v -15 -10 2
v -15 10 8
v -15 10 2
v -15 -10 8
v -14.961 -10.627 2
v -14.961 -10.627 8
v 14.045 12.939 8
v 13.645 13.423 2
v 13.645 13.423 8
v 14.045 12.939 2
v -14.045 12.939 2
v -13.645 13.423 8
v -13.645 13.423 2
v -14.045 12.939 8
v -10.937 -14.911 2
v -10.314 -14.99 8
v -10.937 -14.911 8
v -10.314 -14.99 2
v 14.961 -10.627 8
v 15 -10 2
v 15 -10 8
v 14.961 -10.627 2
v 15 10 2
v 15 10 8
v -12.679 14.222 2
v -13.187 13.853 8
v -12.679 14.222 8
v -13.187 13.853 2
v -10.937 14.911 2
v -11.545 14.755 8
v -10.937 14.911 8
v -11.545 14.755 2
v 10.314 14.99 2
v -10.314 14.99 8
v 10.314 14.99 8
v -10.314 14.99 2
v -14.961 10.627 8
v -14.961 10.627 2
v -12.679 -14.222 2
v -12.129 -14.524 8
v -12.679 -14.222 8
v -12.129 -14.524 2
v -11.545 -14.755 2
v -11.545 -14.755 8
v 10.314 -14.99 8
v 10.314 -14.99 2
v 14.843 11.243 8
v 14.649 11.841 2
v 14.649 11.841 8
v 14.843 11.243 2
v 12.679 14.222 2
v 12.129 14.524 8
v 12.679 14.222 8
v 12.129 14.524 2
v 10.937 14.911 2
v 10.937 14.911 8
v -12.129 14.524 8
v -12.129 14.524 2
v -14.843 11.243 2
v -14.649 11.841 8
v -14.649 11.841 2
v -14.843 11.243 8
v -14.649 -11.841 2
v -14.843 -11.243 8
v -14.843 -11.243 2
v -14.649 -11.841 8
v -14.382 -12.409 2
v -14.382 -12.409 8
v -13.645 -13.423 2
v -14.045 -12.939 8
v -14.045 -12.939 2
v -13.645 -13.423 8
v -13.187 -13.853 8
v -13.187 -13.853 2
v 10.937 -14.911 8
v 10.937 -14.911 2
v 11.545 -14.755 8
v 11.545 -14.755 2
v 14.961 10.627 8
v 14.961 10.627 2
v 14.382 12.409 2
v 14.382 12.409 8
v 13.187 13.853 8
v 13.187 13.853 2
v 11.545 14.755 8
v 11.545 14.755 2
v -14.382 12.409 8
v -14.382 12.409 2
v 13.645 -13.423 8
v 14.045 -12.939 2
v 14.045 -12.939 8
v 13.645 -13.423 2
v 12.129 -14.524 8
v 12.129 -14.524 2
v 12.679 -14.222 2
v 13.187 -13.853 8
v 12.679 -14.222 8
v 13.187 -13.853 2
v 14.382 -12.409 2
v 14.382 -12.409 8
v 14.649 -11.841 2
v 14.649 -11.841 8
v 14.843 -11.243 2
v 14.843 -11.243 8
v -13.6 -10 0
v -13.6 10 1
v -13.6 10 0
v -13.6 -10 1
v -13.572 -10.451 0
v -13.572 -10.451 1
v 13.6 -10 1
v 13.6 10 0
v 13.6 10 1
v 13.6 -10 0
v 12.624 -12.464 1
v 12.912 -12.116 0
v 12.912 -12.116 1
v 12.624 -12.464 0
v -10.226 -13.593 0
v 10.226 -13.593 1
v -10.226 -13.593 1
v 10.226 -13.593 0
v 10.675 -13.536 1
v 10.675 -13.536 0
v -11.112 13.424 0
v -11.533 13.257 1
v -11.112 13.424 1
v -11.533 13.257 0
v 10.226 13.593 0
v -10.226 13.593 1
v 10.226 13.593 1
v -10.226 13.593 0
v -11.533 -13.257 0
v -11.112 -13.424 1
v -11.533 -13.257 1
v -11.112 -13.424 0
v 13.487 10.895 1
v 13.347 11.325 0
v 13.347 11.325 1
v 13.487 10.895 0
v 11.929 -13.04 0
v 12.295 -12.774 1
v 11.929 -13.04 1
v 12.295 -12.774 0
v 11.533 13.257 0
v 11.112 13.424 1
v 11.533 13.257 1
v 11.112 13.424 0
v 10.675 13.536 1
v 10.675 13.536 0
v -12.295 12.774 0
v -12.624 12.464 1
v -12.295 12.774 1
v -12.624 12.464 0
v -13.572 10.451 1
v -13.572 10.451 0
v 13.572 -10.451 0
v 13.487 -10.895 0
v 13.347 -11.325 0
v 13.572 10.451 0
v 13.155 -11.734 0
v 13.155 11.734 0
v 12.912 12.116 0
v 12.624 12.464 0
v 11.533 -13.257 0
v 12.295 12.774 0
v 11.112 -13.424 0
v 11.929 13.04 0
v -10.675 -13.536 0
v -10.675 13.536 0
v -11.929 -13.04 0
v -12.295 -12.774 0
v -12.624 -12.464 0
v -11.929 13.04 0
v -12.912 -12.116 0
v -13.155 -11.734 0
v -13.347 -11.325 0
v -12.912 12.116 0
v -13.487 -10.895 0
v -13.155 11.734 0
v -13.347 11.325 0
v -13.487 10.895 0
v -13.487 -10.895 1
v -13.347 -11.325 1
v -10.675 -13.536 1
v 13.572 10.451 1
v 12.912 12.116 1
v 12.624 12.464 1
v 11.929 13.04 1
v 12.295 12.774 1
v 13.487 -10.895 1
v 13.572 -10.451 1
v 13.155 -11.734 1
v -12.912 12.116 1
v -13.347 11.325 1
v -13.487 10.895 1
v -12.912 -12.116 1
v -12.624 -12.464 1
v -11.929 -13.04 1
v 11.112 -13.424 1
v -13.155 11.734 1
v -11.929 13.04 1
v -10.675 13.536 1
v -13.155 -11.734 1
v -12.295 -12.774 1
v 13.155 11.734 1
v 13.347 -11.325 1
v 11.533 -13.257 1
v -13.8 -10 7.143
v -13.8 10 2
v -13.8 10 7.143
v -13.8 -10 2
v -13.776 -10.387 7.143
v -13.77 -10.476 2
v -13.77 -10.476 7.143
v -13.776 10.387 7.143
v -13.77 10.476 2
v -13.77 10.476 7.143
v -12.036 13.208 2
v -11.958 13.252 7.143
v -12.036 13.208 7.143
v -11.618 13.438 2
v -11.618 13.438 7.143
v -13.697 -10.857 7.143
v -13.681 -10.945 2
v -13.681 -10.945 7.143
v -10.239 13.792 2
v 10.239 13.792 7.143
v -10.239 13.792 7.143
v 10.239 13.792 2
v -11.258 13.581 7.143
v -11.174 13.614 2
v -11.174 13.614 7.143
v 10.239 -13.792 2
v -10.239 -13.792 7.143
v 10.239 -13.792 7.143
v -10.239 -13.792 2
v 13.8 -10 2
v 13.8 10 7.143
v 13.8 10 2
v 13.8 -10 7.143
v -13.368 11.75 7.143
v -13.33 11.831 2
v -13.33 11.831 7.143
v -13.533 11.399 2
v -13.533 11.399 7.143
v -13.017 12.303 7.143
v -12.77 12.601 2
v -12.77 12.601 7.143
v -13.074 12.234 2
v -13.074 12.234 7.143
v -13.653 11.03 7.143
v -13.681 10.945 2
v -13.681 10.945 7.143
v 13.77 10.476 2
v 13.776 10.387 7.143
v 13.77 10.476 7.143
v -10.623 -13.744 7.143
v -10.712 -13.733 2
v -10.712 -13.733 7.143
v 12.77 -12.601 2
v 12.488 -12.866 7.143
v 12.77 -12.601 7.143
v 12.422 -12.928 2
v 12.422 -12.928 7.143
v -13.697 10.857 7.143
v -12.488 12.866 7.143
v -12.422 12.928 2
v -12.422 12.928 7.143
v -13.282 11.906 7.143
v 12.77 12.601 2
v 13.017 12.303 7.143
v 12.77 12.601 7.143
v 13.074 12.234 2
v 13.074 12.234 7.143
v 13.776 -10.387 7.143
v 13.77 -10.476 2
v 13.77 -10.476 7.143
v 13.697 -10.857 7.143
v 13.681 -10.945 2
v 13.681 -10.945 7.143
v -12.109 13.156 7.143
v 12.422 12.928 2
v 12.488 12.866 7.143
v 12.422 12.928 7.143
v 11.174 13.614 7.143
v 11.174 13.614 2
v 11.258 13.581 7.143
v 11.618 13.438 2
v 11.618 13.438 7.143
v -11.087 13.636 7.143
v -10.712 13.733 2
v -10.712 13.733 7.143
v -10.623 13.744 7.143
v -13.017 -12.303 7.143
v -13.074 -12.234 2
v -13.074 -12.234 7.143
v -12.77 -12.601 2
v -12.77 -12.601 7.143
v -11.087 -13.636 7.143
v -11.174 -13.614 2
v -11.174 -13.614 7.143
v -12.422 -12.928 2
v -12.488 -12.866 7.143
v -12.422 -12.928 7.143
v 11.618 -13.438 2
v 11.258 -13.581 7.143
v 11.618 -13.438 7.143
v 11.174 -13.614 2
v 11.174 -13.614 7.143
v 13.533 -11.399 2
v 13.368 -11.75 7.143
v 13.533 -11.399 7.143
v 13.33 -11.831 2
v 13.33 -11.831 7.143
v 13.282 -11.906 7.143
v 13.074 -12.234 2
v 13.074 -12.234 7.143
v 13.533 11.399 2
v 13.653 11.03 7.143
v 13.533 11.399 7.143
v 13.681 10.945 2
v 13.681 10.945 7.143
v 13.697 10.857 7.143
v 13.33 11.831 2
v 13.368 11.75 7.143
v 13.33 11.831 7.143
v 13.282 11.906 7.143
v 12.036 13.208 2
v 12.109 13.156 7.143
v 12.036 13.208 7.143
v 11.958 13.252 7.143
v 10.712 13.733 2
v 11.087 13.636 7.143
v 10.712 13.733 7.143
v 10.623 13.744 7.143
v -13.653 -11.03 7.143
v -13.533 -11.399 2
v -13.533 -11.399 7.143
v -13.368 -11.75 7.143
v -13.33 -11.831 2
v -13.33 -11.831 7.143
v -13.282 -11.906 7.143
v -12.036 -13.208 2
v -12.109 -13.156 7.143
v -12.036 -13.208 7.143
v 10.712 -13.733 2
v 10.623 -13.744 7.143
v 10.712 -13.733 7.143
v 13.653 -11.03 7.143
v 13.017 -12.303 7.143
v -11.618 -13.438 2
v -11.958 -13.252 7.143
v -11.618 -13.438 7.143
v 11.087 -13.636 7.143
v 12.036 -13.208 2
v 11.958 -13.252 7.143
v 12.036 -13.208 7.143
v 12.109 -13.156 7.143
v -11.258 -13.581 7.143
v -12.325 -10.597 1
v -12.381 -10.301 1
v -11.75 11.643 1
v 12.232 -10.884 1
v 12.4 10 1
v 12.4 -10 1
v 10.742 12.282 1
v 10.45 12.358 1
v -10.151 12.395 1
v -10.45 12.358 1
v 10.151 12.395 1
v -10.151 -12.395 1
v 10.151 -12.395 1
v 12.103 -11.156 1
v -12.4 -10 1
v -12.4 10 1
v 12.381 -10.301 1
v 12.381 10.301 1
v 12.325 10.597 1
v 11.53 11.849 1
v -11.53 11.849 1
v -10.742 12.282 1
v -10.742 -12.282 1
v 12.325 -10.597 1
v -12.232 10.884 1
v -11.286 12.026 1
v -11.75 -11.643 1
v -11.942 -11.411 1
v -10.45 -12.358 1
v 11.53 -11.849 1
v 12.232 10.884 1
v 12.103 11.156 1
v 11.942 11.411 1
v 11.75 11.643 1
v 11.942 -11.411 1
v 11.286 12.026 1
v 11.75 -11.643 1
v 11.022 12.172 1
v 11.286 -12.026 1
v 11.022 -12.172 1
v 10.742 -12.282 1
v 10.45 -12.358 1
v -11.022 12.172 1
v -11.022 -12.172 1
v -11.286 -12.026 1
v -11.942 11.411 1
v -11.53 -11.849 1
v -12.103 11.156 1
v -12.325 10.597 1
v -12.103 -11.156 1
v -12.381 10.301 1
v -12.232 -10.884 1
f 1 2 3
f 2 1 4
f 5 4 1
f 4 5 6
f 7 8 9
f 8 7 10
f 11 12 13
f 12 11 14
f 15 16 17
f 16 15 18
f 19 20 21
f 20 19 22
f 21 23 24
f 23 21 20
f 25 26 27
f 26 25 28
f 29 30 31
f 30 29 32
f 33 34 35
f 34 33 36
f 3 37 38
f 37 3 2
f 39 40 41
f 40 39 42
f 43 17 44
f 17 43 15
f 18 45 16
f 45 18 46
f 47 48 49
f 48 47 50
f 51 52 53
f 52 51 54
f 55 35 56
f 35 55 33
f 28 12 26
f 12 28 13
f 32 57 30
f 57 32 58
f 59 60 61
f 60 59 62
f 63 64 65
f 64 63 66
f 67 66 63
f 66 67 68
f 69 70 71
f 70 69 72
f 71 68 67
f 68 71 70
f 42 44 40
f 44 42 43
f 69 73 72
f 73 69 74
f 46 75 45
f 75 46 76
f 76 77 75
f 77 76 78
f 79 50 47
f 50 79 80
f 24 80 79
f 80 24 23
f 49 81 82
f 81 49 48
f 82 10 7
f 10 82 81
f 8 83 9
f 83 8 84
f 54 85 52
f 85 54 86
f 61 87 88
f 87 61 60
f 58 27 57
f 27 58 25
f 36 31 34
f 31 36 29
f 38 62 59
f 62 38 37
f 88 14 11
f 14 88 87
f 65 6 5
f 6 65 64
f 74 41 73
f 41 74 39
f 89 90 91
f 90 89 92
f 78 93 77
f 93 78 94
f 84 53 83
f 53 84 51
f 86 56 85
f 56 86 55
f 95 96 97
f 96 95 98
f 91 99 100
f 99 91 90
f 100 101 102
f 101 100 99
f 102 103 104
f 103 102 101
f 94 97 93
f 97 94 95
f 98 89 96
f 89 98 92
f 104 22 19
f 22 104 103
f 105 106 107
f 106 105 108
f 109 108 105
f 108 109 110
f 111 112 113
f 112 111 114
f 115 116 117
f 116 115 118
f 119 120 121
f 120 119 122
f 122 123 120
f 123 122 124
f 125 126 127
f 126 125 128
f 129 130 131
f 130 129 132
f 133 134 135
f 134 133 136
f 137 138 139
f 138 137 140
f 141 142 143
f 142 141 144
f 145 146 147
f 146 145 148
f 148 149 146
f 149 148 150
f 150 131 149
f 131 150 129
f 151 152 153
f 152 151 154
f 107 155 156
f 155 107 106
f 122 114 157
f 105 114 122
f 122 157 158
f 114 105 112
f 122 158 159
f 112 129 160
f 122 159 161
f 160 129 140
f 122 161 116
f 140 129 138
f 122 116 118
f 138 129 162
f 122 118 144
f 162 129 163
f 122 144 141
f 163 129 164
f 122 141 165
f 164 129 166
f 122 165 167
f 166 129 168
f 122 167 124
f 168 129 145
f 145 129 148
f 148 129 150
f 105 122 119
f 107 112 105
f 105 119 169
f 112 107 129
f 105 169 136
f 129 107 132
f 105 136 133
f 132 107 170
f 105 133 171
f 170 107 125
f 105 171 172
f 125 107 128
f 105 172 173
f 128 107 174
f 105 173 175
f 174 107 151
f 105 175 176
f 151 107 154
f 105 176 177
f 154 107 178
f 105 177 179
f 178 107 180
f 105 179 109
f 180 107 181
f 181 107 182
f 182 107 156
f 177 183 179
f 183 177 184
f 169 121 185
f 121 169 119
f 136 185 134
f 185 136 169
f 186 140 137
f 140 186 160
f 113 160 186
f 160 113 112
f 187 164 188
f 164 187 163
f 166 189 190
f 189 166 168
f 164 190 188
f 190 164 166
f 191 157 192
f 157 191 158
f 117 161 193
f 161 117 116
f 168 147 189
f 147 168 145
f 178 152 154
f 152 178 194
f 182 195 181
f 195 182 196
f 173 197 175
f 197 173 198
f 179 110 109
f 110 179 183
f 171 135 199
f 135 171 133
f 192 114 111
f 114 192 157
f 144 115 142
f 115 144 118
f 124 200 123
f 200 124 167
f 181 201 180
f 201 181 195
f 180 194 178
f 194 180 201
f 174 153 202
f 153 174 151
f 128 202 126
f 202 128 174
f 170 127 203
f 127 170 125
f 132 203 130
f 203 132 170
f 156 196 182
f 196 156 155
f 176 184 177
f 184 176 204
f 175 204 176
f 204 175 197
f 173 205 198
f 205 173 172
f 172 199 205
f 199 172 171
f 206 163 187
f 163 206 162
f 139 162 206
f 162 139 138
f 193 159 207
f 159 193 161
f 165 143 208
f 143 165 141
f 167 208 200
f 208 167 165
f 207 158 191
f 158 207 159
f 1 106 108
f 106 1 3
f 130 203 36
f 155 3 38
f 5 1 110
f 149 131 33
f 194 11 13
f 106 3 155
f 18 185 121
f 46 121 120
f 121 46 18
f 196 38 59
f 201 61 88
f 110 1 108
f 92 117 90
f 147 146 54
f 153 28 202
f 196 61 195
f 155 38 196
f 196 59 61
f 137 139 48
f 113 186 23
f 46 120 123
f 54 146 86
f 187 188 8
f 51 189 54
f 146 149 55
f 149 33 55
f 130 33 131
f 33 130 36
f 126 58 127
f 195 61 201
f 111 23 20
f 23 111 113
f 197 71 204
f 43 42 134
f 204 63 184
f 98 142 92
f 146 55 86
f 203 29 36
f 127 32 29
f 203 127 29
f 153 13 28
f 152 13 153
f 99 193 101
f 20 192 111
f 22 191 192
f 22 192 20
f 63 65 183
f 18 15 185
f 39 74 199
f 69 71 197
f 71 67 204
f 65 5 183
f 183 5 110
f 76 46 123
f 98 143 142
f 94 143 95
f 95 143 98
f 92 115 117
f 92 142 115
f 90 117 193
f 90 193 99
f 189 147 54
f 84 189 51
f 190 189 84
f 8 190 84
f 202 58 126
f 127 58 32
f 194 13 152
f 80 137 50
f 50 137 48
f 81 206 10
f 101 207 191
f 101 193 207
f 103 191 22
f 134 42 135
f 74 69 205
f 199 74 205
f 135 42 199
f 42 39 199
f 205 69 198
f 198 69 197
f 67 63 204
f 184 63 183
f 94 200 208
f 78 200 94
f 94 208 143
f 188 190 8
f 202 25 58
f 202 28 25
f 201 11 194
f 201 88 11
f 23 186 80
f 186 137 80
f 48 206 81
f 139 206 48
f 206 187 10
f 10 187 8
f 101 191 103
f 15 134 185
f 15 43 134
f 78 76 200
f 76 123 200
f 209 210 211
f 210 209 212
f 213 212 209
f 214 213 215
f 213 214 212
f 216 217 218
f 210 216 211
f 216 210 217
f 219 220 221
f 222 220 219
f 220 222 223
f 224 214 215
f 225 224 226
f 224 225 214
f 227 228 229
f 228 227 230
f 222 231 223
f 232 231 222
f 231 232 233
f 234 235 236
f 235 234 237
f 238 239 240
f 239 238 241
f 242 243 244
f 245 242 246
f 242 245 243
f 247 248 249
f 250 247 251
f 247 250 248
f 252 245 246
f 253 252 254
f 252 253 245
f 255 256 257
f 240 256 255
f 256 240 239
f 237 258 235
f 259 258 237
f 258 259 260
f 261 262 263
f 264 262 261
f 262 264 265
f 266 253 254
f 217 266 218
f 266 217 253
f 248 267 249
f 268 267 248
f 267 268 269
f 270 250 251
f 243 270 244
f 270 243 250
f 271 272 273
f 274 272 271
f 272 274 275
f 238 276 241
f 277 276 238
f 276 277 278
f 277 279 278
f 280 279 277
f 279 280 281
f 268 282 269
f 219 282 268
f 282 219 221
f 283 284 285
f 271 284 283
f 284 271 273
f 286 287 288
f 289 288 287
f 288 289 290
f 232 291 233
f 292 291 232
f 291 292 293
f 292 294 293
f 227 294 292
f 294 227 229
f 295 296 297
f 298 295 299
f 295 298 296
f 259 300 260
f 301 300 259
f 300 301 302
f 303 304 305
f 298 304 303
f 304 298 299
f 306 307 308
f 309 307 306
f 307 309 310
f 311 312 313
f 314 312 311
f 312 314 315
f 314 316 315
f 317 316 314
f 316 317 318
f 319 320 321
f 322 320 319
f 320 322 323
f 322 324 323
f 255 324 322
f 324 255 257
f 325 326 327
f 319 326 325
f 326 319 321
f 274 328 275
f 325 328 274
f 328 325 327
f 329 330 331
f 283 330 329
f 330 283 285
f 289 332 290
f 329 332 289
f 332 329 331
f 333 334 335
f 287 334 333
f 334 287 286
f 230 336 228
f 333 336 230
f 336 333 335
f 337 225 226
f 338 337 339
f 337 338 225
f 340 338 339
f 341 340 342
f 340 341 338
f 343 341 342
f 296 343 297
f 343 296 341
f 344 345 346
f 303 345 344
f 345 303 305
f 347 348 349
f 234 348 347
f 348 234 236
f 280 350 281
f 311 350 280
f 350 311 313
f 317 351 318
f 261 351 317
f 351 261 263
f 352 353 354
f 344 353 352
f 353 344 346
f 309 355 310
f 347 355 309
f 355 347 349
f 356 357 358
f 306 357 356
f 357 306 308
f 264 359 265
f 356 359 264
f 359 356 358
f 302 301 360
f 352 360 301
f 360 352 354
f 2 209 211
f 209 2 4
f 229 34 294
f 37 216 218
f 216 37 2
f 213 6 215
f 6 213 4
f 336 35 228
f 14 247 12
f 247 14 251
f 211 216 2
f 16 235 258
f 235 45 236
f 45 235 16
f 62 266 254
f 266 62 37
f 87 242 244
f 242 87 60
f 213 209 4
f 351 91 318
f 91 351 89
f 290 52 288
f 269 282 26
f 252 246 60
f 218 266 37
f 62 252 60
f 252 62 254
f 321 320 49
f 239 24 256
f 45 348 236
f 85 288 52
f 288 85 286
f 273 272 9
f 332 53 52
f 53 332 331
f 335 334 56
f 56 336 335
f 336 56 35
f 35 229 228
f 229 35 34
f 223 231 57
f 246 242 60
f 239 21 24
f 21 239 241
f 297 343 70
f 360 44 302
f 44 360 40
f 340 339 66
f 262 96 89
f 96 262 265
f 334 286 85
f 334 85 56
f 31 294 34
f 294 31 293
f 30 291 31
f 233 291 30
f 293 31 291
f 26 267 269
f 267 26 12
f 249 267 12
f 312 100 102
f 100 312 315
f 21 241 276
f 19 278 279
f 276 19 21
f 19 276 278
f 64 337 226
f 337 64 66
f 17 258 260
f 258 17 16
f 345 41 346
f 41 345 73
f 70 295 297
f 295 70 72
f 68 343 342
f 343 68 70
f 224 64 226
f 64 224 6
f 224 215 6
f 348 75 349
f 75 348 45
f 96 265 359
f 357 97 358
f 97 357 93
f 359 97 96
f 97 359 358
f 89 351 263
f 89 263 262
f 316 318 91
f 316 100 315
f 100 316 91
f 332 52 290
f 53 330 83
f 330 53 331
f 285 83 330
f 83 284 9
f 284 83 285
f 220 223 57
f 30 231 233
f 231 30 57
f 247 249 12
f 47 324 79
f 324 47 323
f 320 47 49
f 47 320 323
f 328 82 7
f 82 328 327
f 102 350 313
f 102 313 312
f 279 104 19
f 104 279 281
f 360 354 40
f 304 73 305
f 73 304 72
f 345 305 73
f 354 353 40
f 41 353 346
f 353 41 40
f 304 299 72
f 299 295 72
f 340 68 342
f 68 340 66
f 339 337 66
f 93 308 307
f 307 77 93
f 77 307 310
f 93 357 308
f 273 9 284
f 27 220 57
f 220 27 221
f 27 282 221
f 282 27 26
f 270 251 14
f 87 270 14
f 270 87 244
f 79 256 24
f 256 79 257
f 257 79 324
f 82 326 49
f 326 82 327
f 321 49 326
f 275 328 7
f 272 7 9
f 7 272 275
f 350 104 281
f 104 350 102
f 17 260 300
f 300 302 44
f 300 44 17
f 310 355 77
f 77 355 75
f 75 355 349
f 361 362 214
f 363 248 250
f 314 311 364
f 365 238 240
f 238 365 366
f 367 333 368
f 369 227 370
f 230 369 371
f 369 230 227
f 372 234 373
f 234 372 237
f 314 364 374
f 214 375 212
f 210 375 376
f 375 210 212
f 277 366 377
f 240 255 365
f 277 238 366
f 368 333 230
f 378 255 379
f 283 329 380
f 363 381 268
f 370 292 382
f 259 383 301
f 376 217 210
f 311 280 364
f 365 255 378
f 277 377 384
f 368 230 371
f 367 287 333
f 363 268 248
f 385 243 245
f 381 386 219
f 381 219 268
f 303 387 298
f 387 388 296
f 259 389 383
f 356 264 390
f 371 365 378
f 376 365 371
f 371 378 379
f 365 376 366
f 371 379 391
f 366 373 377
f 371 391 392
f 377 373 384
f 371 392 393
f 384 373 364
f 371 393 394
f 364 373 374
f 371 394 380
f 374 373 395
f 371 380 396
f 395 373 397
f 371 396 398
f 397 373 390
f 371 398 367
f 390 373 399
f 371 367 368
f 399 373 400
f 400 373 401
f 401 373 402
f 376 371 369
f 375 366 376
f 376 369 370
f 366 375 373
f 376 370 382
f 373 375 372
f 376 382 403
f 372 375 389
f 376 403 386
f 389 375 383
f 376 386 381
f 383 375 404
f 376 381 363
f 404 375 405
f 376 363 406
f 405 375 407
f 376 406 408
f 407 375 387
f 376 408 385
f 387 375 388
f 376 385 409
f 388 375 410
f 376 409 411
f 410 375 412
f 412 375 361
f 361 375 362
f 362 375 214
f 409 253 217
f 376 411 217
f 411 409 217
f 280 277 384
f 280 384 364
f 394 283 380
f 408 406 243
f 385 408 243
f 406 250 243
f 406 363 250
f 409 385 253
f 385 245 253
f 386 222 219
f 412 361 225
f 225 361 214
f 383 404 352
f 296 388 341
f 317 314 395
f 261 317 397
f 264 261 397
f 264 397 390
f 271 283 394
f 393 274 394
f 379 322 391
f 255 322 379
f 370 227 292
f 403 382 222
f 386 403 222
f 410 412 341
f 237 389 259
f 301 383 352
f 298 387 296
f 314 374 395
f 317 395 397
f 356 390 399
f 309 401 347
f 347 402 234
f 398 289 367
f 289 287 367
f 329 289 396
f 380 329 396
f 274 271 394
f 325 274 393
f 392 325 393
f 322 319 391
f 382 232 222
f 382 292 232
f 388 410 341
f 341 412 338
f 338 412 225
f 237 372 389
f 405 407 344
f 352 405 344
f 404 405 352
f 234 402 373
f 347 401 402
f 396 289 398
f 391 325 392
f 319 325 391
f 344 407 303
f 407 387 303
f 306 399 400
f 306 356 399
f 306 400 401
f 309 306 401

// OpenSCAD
$fn = 50;


difference() {
	union() {
		translate(v = [0, 0, 2]) {
			hull() {
				translate(v = [-10.0000000000, 10.0000000000, 0]) {
					cylinder(h = 6, r = 5);
				}
				translate(v = [10.0000000000, 10.0000000000, 0]) {
					cylinder(h = 6, r = 5);
				}
				translate(v = [-10.0000000000, -10.0000000000, 0]) {
					cylinder(h = 6, r = 5);
				}
				translate(v = [10.0000000000, -10.0000000000, 0]) {
					cylinder(h = 6, r = 5);
				}
			}
		}
		hull() {
			translate(v = [-10.0000000000, 10.0000000000, 0]) {
				cylinder(h = 1, r = 3.6000000000);
			}
			translate(v = [10.0000000000, 10.0000000000, 0]) {
				cylinder(h = 1, r = 3.6000000000);
			}
			translate(v = [-10.0000000000, -10.0000000000, 0]) {
				cylinder(h = 1, r = 3.6000000000);
			}
			translate(v = [10.0000000000, -10.0000000000, 0]) {
				cylinder(h = 1, r = 3.6000000000);
			}
		}
		translate(v = [0, 0, 1]) {
			hull() {
				translate(v = [-10.0000000000, 10.0000000000, 0]) {
					cylinder(h = 1, r1 = 3.6000000000, r2 = 5.0000000000);
				}
				translate(v = [10.0000000000, 10.0000000000, 0]) {
					cylinder(h = 1, r1 = 3.6000000000, r2 = 5.0000000000);
				}
				translate(v = [-10.0000000000, -10.0000000000, 0]) {
					cylinder(h = 1, r1 = 3.6000000000, r2 = 5.0000000000);
				}
				translate(v = [10.0000000000, -10.0000000000, 0]) {
					cylinder(h = 1, r1 = 3.6000000000, r2 = 5.0000000000);
				}
			}
		}
	}
	union() {
		translate(v = [0, 0, 2]) {
			#hull() {
				translate(v = [-10.0000000000, 10.0000000000, 0]) {
					cylinder(h = 6, r = 3.8000000000);
				}
				translate(v = [10.0000000000, 10.0000000000, 0]) {
					cylinder(h = 6, r = 3.8000000000);
				}
				translate(v = [-10.0000000000, -10.0000000000, 0]) {
					cylinder(h = 6, r = 3.8000000000);
				}
				translate(v = [10.0000000000, -10.0000000000, 0]) {
					cylinder(h = 6, r = 3.8000000000);
				}
			}
		}
		translate(v = [0, 0, 7]) {
			hull() {
				translate(v = [-10.0000000000, 10.0000000000, 0]) {
					cylinder(h = 1, r1 = 3.6000000000, r2 = 5.0000000000);
				}
				translate(v = [10.0000000000, 10.0000000000, 0]) {
					cylinder(h = 1, r1 = 3.6000000000, r2 = 5.0000000000);
				}
				translate(v = [-10.0000000000, -10.0000000000, 0]) {
					cylinder(h = 1, r1 = 3.6000000000, r2 = 5.0000000000);
				}
				translate(v = [10.0000000000, -10.0000000000, 0]) {
					cylinder(h = 1, r1 = 3.6000000000, r2 = 5.0000000000);
				}
			}
		}
		translate(v = [0, 0, 1]) {
			#hull() {
				translate(v = [-10.0000000000, 10.0000000000, 0]) {
					cylinder(h = 1, r1 = 2.4000000000, r2 = 3.8000000000);
				}
				translate(v = [10.0000000000, 10.0000000000, 0]) {
					cylinder(h = 1, r1 = 2.4000000000, r2 = 3.8000000000);
				}
				translate(v = [-10.0000000000, -10.0000000000, 0]) {
					cylinder(h = 1, r1 = 2.4000000000, r2 = 3.8000000000);
				}
				translate(v = [10.0000000000, -10.0000000000, 0]) {
					cylinder(h = 1, r1 = 2.4000000000, r2 = 3.8000000000);
				}
			}
		}
	}
}
